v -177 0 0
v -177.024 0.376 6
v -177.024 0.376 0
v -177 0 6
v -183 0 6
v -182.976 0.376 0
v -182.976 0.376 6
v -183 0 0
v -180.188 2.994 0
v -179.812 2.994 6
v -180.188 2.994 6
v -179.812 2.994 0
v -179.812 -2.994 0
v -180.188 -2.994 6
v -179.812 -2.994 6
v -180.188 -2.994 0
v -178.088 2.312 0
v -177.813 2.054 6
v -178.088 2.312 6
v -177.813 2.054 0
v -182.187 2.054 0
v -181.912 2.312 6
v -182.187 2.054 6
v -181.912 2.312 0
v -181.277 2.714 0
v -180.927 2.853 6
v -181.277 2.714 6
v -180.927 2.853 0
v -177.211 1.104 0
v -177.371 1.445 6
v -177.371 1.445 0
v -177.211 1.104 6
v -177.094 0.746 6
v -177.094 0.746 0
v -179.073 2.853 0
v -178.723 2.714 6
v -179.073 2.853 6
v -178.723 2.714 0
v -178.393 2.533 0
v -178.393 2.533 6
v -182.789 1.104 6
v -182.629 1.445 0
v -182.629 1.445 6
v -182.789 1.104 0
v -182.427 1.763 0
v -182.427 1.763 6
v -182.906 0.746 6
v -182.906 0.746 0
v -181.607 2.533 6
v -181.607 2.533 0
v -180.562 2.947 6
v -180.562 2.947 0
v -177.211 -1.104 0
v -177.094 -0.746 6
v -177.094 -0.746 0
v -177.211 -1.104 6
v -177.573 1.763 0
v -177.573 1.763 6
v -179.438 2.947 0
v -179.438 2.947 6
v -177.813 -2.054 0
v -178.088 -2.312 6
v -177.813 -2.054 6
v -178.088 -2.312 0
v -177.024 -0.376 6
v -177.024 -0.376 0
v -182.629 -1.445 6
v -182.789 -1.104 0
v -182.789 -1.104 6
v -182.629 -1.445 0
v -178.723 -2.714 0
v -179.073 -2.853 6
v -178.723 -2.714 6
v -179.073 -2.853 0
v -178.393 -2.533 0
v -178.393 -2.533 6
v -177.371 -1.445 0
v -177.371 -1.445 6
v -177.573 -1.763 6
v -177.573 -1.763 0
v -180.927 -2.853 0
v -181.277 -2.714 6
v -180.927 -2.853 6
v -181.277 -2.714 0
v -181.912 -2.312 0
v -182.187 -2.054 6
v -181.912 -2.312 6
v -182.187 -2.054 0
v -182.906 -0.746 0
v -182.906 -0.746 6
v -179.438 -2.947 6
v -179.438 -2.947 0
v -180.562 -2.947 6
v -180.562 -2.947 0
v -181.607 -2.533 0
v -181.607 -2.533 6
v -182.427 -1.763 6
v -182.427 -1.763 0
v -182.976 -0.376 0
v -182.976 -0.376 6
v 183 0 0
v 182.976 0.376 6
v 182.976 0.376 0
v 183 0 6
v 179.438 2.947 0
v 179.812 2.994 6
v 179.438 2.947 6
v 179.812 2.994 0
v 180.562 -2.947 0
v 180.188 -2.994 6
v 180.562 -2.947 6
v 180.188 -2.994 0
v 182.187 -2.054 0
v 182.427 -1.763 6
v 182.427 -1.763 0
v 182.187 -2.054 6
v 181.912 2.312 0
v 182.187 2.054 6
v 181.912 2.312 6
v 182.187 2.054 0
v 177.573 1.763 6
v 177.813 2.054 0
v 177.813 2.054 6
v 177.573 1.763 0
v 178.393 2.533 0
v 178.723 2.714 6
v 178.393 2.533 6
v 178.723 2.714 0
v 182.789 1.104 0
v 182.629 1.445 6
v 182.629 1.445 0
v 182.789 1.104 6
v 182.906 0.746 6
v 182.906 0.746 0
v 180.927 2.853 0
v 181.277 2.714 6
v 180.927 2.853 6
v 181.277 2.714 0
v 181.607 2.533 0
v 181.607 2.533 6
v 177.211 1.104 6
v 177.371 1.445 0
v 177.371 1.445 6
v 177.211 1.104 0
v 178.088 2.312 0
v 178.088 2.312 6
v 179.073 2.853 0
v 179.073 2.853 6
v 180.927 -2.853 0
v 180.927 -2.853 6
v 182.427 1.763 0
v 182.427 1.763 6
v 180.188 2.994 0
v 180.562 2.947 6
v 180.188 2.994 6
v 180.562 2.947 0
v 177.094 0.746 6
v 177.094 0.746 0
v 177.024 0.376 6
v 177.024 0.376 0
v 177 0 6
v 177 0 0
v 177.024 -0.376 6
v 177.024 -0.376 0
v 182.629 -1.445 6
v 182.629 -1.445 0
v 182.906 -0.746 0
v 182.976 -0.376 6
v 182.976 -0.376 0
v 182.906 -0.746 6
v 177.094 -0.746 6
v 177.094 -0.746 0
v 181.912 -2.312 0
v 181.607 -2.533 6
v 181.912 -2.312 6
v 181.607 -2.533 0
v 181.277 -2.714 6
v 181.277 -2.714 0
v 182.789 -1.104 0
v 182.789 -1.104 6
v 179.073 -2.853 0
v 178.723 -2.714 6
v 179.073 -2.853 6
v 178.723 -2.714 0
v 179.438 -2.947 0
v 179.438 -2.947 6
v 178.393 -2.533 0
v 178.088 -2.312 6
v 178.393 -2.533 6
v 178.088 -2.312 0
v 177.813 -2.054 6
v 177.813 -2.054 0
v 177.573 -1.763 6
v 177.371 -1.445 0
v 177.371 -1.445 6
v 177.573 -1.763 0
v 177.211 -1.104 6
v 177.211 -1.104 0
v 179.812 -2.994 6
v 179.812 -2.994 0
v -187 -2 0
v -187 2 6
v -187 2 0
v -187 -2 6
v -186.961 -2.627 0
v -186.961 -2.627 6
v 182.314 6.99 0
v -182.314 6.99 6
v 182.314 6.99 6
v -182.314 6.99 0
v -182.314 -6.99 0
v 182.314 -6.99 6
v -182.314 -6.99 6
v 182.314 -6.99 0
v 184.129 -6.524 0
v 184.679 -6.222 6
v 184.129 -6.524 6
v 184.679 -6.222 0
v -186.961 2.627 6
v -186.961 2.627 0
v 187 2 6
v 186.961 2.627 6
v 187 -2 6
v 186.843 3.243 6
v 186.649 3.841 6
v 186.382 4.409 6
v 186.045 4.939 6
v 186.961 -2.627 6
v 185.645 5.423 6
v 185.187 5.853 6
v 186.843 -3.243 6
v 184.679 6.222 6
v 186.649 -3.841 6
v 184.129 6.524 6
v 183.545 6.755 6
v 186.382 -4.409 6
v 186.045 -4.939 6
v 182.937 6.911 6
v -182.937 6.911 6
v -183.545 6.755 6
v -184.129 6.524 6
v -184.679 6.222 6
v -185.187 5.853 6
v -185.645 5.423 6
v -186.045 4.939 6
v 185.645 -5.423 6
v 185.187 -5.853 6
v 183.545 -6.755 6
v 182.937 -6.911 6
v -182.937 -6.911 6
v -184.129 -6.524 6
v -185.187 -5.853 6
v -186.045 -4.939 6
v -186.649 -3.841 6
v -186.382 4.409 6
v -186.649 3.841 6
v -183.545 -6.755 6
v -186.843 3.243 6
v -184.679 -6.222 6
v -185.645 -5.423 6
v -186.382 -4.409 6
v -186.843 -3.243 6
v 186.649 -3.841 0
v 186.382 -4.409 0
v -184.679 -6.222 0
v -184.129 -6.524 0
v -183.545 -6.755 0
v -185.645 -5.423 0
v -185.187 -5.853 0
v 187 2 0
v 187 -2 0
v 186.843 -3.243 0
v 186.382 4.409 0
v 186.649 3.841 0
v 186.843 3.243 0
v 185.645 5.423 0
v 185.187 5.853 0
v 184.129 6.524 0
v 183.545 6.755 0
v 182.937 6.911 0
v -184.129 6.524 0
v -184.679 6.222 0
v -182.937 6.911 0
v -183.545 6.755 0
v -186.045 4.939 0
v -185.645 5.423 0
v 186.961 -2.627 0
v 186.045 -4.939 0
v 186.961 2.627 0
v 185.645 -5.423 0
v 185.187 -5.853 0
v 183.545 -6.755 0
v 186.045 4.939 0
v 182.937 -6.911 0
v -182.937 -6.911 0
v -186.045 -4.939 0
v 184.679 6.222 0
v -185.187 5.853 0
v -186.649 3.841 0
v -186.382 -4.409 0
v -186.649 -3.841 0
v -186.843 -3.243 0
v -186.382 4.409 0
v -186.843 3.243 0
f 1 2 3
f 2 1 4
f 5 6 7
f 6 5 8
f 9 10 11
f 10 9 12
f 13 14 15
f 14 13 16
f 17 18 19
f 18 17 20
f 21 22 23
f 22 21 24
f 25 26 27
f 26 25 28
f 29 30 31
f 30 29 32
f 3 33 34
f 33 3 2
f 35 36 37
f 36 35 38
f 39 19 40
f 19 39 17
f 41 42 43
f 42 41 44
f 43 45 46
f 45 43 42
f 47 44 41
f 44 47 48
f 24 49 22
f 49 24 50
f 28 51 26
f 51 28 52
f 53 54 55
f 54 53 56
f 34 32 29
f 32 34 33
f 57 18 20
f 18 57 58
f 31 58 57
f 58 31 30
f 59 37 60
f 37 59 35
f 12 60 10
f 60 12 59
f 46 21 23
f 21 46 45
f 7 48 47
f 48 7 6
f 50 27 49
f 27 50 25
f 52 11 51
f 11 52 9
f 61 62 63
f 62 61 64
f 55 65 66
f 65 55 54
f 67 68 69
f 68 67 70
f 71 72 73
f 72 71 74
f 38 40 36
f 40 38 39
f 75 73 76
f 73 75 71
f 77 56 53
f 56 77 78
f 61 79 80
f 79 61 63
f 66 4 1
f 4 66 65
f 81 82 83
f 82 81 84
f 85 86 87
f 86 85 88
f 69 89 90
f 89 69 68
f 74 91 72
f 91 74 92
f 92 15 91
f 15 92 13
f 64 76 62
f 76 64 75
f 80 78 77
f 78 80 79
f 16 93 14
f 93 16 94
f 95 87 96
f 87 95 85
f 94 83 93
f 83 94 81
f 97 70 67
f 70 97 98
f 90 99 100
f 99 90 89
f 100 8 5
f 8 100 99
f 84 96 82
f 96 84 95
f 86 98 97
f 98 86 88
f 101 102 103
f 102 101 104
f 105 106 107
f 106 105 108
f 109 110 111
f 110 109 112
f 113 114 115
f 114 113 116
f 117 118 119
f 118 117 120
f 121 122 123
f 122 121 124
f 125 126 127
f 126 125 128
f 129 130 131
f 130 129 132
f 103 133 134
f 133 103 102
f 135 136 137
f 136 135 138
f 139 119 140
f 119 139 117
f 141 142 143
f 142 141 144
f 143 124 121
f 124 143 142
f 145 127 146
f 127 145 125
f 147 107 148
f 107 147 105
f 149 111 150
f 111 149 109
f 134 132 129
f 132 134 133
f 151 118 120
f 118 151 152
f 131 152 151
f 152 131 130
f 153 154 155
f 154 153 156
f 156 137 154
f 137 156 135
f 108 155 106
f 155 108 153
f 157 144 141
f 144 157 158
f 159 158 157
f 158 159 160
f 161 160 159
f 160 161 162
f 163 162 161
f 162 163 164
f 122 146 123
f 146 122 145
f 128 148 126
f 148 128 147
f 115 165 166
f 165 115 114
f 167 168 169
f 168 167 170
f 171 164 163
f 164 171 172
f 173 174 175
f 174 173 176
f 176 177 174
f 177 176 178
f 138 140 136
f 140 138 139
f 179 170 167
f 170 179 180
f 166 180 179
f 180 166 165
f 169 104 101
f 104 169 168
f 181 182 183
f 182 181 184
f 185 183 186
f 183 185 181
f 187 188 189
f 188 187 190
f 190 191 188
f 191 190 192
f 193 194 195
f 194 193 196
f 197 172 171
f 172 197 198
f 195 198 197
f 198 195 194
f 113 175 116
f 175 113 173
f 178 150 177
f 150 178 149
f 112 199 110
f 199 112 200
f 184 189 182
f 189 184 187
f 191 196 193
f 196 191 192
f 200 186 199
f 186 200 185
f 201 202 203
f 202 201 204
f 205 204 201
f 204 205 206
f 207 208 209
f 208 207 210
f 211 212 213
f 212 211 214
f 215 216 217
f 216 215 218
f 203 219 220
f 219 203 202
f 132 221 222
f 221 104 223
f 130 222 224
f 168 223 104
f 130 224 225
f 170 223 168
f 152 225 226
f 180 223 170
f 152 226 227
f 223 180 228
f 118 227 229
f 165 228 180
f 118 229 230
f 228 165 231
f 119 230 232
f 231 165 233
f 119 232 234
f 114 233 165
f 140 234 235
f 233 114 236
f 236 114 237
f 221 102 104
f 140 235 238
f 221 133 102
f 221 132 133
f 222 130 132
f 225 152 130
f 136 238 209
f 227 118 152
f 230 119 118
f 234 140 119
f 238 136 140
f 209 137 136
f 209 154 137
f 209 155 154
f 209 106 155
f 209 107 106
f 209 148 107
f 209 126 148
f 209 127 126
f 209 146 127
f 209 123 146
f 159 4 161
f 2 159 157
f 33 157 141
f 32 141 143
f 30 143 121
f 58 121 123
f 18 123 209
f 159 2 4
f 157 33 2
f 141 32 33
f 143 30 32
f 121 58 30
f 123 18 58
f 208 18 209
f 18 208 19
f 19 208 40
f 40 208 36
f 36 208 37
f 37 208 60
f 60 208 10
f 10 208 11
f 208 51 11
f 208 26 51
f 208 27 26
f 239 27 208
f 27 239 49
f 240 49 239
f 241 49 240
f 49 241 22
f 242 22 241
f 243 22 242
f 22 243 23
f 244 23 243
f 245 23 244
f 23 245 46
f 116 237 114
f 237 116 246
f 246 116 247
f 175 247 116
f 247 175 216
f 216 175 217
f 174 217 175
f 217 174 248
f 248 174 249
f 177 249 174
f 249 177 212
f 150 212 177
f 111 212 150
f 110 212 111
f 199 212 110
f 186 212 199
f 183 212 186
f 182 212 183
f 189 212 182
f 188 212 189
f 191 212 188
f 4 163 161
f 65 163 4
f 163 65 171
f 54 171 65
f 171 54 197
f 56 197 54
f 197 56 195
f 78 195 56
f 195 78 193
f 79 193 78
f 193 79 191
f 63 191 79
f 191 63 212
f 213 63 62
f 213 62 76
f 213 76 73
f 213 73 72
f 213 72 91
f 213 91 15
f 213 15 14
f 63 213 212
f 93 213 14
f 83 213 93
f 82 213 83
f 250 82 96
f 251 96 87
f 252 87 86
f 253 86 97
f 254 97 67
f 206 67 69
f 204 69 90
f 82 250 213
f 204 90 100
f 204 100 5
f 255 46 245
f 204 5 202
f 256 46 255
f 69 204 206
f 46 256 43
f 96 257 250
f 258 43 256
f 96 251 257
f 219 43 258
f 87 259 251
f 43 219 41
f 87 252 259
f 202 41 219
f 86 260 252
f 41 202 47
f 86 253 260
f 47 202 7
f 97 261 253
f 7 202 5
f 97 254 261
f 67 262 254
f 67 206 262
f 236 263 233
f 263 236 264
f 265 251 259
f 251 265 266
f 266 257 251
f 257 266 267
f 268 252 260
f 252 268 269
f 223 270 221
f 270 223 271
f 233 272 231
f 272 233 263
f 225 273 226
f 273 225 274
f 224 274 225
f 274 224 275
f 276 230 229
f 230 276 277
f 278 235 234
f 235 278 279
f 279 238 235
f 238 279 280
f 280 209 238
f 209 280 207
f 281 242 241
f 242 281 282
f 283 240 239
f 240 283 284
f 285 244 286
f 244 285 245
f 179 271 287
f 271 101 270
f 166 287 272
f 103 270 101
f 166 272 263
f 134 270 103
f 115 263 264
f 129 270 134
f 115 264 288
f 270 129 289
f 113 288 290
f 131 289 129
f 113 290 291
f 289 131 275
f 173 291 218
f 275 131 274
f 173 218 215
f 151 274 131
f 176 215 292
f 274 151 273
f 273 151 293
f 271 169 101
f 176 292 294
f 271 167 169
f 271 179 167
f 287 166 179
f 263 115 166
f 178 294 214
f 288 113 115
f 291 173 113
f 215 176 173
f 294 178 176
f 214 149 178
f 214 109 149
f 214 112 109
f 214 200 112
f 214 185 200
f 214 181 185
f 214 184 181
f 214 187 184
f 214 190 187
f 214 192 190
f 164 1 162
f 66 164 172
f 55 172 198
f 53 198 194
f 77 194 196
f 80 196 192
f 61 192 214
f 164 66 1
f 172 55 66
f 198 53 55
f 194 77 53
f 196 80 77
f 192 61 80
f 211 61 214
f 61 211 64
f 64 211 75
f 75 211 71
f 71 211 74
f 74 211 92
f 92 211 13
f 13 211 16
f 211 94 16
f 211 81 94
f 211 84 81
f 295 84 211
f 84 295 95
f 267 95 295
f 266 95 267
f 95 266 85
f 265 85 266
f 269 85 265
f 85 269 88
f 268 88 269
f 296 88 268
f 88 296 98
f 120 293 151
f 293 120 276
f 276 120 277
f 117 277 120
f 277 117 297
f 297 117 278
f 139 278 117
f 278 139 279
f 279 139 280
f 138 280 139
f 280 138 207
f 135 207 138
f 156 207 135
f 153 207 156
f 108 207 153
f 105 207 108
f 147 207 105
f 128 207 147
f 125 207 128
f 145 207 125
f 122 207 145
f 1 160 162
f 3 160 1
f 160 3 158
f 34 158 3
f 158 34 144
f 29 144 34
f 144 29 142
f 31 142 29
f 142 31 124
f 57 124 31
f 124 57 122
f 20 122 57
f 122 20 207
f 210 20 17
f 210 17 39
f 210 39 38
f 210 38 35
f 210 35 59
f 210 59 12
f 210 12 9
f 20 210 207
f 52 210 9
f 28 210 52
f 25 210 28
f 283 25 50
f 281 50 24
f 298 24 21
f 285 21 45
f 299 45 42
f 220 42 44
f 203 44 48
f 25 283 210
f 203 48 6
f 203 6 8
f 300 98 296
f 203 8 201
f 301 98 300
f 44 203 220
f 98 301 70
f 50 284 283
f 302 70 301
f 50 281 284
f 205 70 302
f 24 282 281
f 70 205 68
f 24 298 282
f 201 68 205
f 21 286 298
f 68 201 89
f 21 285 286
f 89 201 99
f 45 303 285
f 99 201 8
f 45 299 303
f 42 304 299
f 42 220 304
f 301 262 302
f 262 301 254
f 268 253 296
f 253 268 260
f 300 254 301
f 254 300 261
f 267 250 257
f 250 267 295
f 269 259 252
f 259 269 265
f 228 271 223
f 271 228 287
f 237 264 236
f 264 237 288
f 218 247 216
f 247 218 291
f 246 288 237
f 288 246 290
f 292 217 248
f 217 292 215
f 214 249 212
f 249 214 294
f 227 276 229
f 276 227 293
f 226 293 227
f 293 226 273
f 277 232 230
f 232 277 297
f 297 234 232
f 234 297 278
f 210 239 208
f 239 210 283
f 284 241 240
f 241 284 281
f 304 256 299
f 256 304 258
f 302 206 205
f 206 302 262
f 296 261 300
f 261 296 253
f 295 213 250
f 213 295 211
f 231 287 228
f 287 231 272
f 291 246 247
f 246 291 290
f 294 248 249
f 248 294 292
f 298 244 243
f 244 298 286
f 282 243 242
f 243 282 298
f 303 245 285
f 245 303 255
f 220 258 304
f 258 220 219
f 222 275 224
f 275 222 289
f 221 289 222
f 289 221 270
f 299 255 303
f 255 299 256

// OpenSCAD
$fn = 50;


difference() {
	union() {
		hull() {
			translate(v = [-182.0000000000, 2.0000000000, 0]) {
				cylinder(h = 6, r = 5);
			}
			translate(v = [182.0000000000, 2.0000000000, 0]) {
				cylinder(h = 6, r = 5);
			}
			translate(v = [-182.0000000000, -2.0000000000, 0]) {
				cylinder(h = 6, r = 5);
			}
			translate(v = [182.0000000000, -2.0000000000, 0]) {
				cylinder(h = 6, r = 5);
			}
		}
	}
	union() {
		translate(v = [-180.0000000000, 0.0000000000, -100.0000000000]) {
			cylinder(h = 200, r = 3.0000000000);
		}
		translate(v = [-180.0000000000, 0.0000000000, -100.0000000000]) {
			cylinder(h = 200, r = 3.0000000000);
		}
		translate(v = [180.0000000000, 0.0000000000, -100.0000000000]) {
			cylinder(h = 200, r = 3.0000000000);
		}
		translate(v = [180.0000000000, 0.0000000000, -100.0000000000]) {
			cylinder(h = 200, r = 3.0000000000);
		}
	}
}
